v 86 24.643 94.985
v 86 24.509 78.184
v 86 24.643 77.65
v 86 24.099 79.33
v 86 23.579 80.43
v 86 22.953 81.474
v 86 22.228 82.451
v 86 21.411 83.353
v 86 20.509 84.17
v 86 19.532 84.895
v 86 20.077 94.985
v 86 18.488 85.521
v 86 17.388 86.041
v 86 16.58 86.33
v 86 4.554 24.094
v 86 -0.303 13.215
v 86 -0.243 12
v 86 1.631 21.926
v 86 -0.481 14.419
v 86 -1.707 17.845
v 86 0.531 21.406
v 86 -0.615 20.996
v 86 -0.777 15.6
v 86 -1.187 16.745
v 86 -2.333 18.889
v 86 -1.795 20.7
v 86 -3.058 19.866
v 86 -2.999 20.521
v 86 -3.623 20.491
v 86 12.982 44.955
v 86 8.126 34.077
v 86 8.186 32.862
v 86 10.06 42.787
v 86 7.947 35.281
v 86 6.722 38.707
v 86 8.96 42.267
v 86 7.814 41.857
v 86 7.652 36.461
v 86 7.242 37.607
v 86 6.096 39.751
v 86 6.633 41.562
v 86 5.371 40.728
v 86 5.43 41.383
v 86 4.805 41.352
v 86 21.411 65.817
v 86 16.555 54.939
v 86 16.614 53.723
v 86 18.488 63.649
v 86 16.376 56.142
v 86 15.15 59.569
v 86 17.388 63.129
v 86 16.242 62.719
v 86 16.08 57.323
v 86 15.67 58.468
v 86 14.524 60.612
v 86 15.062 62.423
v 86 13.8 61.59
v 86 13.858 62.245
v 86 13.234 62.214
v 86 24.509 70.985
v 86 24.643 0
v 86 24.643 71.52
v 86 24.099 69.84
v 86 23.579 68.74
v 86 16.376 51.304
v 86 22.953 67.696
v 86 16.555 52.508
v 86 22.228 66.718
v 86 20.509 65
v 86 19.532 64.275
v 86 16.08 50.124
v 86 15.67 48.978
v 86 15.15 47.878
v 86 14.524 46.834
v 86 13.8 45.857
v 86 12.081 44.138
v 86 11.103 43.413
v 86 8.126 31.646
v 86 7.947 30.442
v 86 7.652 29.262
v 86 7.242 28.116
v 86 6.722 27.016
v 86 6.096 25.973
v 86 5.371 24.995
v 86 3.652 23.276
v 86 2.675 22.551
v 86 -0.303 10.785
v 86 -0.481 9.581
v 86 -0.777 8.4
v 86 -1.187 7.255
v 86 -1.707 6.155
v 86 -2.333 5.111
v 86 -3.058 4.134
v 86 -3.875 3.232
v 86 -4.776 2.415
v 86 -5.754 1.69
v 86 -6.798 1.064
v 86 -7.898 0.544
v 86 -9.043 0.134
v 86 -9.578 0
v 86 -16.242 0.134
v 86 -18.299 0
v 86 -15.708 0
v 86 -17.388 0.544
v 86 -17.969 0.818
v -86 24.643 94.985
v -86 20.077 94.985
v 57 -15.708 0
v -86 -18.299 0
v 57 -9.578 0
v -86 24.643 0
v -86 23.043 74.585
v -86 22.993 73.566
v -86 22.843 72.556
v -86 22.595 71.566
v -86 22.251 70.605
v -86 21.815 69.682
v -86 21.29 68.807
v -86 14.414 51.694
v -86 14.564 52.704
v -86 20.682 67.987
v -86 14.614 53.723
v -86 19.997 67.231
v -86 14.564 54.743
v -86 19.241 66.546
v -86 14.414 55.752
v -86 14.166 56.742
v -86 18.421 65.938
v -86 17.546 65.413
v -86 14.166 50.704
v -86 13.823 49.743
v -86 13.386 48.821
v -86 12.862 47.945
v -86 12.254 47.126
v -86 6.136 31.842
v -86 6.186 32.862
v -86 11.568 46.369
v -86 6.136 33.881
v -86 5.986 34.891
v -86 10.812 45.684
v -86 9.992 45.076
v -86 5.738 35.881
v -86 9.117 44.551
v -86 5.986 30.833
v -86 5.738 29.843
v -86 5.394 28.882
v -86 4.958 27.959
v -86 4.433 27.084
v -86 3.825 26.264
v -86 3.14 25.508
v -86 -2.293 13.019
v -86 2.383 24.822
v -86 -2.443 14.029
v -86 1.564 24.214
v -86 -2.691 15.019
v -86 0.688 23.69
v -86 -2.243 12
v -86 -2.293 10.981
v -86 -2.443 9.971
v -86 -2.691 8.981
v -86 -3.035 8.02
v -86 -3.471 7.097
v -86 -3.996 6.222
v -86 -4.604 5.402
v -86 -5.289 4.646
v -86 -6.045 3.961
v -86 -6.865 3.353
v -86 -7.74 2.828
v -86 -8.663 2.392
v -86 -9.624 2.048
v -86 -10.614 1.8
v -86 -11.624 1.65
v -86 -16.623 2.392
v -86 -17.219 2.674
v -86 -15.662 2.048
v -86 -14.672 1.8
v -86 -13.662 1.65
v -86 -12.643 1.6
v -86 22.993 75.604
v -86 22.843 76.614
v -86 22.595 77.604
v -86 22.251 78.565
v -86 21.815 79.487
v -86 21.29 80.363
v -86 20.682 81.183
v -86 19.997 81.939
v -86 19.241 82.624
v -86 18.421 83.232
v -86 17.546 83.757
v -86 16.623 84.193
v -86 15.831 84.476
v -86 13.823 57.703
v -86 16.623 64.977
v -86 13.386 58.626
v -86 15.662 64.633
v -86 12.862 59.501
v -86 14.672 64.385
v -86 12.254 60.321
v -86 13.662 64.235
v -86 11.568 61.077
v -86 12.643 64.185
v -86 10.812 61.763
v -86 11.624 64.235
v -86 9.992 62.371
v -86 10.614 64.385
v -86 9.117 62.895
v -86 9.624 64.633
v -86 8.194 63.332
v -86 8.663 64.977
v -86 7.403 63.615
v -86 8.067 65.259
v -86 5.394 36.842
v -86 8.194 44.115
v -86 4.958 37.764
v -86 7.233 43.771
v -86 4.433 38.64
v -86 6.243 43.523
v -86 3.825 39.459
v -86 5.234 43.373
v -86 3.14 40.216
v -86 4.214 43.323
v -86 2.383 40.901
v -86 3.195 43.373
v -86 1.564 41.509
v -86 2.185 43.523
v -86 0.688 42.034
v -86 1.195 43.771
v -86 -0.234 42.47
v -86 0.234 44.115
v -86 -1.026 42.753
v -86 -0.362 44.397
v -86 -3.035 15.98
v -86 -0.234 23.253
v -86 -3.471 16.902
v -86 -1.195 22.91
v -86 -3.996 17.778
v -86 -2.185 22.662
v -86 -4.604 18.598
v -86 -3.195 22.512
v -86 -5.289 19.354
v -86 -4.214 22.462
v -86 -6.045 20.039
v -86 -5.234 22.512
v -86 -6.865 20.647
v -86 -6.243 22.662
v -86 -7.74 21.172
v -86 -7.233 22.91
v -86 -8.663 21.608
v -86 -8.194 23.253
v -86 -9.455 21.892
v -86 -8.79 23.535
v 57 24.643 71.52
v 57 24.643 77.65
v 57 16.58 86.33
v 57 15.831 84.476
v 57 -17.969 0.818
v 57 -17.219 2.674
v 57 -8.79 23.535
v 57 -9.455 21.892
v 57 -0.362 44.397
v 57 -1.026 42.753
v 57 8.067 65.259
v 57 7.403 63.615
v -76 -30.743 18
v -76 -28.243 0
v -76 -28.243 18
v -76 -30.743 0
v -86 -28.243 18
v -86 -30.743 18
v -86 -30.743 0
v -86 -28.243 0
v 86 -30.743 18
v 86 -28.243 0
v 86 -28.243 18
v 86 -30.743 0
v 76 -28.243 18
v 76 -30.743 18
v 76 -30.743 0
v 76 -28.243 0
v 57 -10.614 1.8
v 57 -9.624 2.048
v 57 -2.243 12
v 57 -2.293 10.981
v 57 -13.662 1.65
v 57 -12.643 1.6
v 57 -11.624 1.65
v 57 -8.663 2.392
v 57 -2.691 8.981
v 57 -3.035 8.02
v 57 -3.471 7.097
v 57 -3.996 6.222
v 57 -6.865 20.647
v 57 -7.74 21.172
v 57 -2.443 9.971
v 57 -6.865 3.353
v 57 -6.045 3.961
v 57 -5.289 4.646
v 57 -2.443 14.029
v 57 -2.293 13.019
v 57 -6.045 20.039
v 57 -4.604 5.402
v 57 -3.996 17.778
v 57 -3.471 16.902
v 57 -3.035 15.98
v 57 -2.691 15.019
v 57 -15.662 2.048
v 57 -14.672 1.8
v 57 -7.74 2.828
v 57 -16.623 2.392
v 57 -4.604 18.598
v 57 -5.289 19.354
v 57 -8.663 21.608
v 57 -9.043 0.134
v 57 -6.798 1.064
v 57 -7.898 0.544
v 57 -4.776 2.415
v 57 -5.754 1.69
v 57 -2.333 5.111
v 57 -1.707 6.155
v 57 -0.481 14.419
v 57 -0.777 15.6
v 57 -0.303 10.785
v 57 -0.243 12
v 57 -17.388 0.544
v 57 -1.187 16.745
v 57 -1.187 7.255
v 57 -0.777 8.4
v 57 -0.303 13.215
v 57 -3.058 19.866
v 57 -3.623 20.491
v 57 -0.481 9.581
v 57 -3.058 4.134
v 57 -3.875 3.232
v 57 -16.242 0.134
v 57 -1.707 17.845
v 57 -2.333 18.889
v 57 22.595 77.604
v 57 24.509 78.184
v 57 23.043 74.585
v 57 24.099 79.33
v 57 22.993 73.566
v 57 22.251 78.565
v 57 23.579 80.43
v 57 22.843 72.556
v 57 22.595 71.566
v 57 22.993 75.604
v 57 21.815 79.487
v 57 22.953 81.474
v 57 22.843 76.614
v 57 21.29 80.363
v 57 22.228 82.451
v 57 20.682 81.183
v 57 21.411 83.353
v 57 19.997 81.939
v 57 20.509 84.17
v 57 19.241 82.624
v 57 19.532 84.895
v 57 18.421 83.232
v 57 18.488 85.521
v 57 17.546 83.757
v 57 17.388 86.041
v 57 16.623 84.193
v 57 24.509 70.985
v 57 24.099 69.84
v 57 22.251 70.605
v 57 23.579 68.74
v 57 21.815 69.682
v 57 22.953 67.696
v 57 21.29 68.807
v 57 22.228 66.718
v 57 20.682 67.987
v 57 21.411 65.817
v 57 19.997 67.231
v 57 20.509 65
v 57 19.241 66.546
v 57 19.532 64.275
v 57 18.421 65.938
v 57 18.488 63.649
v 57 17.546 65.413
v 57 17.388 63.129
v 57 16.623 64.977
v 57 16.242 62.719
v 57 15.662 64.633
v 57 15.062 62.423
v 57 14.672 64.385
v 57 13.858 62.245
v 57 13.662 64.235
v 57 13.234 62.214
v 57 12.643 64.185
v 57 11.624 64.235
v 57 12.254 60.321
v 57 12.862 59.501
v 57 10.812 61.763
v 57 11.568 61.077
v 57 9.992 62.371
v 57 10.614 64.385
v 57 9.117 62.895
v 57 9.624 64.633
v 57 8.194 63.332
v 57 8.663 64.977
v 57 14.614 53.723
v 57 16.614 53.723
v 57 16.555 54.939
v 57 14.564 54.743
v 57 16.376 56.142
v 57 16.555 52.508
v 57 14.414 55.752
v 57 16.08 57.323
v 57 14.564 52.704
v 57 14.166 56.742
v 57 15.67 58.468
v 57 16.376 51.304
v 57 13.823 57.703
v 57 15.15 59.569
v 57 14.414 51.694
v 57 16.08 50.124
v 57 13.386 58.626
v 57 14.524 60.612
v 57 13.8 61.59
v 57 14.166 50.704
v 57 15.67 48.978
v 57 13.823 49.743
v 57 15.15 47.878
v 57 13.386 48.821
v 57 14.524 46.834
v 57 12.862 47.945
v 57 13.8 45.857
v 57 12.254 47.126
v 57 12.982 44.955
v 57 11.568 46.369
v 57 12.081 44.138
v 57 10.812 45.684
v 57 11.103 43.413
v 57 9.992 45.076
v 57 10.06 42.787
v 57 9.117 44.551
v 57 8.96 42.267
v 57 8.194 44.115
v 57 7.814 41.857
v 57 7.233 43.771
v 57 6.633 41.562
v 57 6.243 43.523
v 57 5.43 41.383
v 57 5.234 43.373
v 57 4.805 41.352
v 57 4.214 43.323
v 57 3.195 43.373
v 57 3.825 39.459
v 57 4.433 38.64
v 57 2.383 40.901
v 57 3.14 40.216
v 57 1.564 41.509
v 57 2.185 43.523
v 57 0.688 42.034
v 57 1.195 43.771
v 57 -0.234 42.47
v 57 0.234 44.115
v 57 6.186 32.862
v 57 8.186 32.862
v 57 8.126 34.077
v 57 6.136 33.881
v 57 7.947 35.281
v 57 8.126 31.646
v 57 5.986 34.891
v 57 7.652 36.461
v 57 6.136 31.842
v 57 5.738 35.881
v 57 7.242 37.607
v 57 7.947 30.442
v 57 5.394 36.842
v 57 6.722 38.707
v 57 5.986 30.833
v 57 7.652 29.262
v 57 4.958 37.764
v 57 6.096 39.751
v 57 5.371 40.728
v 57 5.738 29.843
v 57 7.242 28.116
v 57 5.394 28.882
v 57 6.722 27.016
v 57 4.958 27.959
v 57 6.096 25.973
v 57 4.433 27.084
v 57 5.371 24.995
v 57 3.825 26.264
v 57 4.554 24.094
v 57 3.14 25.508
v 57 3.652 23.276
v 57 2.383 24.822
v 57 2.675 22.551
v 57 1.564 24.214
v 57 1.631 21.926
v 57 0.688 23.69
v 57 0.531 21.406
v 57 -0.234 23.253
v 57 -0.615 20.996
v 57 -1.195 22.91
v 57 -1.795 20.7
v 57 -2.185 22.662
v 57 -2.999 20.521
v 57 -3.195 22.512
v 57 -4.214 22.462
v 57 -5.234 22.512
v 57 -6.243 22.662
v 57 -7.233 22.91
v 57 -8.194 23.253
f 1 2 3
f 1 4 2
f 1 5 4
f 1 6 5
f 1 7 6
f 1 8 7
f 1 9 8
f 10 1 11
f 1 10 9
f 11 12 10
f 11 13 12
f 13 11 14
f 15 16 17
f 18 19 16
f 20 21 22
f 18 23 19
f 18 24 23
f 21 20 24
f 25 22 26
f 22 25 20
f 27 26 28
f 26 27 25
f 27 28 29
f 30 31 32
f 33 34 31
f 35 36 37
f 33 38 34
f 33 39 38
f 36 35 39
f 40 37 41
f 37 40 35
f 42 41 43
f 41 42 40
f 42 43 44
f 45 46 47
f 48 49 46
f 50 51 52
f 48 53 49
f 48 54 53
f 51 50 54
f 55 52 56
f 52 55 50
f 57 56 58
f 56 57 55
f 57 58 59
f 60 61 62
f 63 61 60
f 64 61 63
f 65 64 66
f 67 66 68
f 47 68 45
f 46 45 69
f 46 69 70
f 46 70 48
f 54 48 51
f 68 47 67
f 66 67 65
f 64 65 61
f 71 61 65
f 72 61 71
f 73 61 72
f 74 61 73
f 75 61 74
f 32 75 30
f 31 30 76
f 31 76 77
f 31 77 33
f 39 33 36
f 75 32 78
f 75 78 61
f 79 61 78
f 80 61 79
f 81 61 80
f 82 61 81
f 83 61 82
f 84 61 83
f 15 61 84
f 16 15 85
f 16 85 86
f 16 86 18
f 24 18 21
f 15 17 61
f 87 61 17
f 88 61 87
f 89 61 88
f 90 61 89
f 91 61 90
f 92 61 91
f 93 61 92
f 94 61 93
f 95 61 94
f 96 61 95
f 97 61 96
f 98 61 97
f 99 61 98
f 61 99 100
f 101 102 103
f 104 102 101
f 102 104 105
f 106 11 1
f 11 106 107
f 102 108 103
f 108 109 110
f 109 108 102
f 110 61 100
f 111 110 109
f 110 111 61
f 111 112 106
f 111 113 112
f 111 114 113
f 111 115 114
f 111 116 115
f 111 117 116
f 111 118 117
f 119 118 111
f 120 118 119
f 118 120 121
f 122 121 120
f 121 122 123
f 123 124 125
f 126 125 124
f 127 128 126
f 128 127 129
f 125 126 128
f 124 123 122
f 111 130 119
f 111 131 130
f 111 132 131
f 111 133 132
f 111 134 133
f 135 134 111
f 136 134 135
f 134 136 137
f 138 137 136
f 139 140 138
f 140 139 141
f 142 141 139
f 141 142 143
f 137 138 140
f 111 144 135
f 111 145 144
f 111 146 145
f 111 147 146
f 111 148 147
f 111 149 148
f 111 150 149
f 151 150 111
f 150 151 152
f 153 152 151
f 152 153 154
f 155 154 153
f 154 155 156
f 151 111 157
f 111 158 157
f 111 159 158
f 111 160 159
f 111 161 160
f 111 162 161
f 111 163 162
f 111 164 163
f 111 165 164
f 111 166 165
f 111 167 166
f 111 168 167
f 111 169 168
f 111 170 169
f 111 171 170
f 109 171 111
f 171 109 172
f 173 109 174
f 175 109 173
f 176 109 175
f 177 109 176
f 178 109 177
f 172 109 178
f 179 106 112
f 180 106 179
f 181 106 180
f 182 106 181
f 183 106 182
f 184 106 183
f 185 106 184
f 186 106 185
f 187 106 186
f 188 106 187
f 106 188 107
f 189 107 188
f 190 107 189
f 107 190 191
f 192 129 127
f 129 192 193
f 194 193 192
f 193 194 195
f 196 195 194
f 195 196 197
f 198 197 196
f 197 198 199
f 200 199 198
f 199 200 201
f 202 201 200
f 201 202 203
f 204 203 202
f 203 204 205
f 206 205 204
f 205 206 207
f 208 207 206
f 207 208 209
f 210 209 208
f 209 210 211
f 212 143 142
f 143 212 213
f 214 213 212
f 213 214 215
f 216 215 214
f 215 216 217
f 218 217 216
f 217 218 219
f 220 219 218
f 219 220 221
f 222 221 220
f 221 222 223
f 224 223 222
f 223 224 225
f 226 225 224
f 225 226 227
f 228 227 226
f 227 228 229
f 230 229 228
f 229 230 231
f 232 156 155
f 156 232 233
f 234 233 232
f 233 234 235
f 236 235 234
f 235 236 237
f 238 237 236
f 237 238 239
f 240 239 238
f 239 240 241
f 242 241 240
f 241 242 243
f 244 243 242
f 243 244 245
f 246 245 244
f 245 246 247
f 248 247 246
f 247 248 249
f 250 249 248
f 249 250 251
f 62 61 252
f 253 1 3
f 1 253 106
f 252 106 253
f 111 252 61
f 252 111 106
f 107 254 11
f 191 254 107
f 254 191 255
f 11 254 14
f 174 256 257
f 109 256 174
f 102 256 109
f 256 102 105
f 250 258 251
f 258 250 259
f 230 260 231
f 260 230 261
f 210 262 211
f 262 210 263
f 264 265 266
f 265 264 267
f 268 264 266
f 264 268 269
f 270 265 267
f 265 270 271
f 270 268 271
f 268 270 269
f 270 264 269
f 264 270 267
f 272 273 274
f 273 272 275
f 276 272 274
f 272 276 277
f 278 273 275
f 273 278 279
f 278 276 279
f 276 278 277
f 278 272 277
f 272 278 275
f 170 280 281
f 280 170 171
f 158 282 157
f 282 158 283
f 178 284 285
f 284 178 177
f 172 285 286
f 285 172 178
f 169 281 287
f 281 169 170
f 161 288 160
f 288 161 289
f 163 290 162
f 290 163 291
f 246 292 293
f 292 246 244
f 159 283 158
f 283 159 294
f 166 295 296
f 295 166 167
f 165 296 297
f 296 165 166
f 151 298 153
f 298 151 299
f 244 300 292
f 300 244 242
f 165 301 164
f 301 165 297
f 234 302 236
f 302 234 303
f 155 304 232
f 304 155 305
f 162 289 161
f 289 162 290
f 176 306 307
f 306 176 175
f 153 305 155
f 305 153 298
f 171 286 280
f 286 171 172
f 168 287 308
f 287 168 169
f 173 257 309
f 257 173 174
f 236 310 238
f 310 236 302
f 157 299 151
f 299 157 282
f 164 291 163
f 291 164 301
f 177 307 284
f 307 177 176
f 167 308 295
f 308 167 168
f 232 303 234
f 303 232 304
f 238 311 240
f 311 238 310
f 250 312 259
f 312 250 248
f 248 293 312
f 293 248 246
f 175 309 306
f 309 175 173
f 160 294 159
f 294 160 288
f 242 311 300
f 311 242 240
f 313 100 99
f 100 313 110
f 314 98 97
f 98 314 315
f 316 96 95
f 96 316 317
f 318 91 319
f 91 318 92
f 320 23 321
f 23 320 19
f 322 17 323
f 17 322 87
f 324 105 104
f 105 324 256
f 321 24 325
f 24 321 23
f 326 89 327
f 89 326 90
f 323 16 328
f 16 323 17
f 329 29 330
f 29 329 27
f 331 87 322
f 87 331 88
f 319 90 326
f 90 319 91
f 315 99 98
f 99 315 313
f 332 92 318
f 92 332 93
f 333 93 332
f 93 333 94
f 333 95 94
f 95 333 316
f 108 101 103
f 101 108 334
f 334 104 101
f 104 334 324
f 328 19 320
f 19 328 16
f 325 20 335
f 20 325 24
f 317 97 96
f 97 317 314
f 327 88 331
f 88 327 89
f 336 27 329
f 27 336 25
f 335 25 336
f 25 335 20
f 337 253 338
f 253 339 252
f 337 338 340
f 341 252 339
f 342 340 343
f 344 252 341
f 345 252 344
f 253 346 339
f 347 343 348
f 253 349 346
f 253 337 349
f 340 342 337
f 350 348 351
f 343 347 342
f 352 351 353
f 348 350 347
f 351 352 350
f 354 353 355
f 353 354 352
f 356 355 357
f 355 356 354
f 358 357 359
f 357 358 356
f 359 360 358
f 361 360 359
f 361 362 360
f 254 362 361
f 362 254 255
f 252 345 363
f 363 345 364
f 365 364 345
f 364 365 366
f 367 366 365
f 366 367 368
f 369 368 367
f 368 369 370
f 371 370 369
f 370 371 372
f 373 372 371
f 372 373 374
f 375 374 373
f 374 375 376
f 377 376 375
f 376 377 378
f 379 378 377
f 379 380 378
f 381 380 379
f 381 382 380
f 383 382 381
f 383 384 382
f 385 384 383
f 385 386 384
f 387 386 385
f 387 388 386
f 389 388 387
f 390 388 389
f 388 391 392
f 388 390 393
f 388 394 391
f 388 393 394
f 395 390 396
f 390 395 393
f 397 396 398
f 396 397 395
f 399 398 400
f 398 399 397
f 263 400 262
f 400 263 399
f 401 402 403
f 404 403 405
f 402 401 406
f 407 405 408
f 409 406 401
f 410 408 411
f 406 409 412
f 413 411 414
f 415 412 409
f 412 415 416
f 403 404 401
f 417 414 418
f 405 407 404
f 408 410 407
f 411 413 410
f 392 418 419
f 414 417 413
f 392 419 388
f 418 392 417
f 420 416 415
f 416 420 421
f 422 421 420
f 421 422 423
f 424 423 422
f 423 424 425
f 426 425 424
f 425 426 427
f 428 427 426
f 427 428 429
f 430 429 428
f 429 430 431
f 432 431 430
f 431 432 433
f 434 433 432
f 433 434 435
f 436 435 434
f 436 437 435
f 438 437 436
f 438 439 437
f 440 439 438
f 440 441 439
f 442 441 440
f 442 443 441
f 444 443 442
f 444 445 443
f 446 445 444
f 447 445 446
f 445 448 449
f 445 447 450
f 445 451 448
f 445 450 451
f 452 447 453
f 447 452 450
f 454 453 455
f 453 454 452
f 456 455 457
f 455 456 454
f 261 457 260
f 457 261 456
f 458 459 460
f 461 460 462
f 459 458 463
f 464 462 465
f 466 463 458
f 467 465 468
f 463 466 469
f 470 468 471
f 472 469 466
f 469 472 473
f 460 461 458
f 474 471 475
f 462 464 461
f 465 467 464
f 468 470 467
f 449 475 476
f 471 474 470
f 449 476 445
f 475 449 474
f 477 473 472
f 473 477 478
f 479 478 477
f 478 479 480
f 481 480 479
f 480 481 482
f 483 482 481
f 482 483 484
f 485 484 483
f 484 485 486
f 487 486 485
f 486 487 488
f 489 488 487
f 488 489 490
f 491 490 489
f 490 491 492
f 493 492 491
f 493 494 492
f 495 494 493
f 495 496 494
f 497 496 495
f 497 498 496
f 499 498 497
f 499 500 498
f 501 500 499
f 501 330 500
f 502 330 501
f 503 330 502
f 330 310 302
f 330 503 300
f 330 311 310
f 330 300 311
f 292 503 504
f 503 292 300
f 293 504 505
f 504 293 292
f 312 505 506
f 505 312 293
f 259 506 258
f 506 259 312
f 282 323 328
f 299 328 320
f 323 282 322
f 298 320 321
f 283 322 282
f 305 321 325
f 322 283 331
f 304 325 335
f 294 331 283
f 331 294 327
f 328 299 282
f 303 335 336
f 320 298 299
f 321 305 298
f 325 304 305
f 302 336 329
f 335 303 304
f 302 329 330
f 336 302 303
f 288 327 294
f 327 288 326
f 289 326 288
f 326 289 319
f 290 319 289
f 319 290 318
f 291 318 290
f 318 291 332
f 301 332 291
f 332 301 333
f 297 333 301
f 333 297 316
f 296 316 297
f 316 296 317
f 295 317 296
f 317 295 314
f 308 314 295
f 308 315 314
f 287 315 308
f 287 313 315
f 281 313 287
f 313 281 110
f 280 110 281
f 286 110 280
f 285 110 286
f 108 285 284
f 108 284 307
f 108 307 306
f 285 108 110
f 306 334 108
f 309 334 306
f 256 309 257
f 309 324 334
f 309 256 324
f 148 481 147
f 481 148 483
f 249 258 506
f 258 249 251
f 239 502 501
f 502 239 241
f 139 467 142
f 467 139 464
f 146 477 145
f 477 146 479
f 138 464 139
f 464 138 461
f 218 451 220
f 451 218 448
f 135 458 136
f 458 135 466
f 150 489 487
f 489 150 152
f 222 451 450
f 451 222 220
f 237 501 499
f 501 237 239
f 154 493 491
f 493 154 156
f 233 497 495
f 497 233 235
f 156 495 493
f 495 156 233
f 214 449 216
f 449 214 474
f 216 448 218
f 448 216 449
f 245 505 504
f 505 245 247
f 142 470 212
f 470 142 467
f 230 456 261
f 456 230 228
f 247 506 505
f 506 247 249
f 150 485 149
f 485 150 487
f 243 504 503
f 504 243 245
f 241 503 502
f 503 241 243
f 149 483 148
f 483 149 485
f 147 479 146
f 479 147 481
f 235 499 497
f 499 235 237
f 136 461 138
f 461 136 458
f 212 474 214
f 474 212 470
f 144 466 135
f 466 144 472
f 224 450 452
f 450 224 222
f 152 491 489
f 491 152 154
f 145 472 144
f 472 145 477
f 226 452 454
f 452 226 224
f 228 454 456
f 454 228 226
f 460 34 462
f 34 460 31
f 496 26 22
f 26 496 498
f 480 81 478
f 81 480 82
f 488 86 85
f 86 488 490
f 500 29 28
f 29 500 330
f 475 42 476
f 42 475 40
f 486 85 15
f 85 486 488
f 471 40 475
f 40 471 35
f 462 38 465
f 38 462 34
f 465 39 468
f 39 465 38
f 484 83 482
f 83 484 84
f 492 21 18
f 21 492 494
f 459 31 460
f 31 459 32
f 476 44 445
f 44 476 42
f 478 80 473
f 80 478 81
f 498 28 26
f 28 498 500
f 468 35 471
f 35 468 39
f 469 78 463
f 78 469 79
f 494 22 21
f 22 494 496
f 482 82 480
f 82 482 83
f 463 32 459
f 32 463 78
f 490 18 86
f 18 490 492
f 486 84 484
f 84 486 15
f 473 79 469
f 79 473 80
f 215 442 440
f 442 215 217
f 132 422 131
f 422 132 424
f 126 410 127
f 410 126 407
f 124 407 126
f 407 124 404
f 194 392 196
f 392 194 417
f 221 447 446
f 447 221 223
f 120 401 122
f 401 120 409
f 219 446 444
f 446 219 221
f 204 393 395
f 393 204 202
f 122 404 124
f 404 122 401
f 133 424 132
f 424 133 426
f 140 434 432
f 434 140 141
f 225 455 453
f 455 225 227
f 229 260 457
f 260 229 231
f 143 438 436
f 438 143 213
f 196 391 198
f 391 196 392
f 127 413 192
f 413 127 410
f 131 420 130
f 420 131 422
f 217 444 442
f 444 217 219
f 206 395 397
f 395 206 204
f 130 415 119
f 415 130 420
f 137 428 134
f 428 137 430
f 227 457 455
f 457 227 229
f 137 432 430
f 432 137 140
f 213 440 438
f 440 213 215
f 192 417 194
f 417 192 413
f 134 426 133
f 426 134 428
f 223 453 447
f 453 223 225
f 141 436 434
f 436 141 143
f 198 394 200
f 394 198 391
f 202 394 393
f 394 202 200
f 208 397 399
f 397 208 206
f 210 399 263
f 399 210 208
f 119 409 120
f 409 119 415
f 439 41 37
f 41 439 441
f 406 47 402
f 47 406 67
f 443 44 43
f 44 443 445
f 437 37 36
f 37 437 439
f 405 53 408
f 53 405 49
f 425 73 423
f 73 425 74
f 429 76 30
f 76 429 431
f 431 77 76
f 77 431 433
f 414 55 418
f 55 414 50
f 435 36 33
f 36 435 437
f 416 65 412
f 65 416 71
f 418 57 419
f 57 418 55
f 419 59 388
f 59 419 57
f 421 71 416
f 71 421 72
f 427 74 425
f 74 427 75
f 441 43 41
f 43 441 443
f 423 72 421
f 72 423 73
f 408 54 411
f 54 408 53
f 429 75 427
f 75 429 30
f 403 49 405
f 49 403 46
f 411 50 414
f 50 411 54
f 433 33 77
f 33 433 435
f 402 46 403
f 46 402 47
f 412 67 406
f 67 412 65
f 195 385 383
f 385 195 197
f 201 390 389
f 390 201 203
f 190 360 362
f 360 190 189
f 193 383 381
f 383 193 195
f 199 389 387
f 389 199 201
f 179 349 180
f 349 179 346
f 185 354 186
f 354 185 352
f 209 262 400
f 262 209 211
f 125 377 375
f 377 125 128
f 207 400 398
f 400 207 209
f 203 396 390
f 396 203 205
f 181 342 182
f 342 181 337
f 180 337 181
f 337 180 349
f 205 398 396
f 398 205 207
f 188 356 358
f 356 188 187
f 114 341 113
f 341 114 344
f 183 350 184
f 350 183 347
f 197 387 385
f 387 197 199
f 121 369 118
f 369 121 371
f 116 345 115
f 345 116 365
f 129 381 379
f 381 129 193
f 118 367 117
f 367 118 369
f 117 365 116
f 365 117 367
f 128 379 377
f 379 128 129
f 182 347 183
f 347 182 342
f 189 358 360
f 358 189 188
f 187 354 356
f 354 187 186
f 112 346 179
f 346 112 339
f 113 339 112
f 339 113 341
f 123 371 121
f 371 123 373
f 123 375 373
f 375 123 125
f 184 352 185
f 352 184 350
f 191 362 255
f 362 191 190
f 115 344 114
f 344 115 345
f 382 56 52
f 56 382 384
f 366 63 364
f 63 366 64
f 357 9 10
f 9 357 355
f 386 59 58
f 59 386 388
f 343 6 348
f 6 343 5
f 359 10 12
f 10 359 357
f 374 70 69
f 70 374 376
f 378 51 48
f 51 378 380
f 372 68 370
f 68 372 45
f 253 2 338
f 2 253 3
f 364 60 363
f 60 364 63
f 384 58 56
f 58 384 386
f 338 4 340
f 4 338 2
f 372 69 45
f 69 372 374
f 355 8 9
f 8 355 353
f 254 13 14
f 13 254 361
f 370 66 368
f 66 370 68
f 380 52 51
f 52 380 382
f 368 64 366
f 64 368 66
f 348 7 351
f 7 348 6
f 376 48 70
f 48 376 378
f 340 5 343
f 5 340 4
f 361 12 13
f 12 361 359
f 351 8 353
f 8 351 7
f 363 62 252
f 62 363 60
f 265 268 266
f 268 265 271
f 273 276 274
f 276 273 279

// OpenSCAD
// file: common.scad
// ============================================================
// common.scad — shared parameters + modules for all designs
// LOCKED PEN SPECIFICATION (do not change)
// ============================================================
PEN_L = 165;      // pen length (mm)
PEN_A = 17;       // pen cross-section minor
PEN_B = 20;       // pen cross-section major (used as diameter envelope)
CLEAR = 0.4;      // fit clearance
WALL  = 1.6;      // minimum wall thickness

$fn = 64;

RCH = PEN_B/2 + CLEAR;   // = 10.4  channel radius
EPS = 0.01;

// --- open-top U trough cut, axis along X, centered at local origin -----------
// Removes a lower half-cylinder of radius r plus a full-width vertical slot
// upward, so the channel is open at the top (no ceiling -> no overhang).
module trough_cut(len, r=RCH, top=80) {
    union() {
        rotate([0,90,0]) cylinder(h=len, r=r, center=true);
        translate([0,0,top/2]) cube([len, 2*r, top], center=true); // slot upward
    }
}

// --- teardrop hole, axis along X, centered at local origin --------------------
// 45-degree self-supporting apex pointing +Z so a horizontal bore can print
// without support.
module teardrop_cut(len, r=RCH) {
    rotate([0,90,0])
        linear_extrude(height=len, center=true)
            union() {
                circle(r=r);
                polygon([[ 0.7071*r, 0.7071*r],
                         [ 0,         1.4142*r],
                         [-0.7071*r,  0.7071*r]]);
            }
}

// --- dial relief: widened open-top pocket at one channel end -----------------
// place at the +X or -X end of a channel so the dose dial clears / can be turned
module dial_relief(end_x, r=RCH+2.2, len=28, top=80) {
    translate([end_x, 0, 0]) trough_cut(len, r, top);
}
// file: gate_lib.scad
// gate_lib.scad — two-part front-removable rack: open cradle BODY + lift-off GATE
// The body is a reclined ramp with open grooves; pens pull straight out the
// front. A slim gate drops into a catch at each end and spans the front, blocking
// the pens until you lift it off. Everything is a loose/positive fit -> nothing
// tolerance-critical, no snap, no test print.
include <common.scad>

LBLK = PEN_L + 7;     // 172 body length
GTH  = 3.0;           // gate thickness
GCL  = 0.6;           // generous clearance for the gate-to-catch fit
TABW = 10;            // gate end-tab width (along X)

// ---- shared layout ---------------------------------------------------------
function _yc(n,P,phi,i) = (-(n-1)/2 + i) * P * cos(phi);
function _zc(n,P,phi,i) = (WALL + RCH) + i * P * sin(phi);
function _ymn(n,P,phi)  = _yc(n,P,phi,0)   - RCH - WALL;
function _ymx(n,P,phi)  = _yc(n,P,phi,n-1) + RCH + WALL;
function _Hb(n,P,phi)   = _zc(n,P,phi,n-1) + RCH + 10;
// up-slope length of the ramp face (gate height when printed standing)
function _faceL(n,P)    = (n-1)*P + 2*RCH + 8;

// 2D teardrop (45deg apex toward +Y) for self-supporting windows
module _td2d(r) {
    union() {
        circle(r=r);
        polygon([[0.7071*r,0.7071*r],[0,1.4142*r],[-0.7071*r,0.7071*r]]);
    }
}

// ===================== BODY (prints in this orientation) ====================
module body(n=4, phi=52, P=22.5, lip=2.0, rr=RCH+2, rlen=34) {
    cph=cos(phi); sph=sin(phi);
    yc=[for(i=[0:n-1]) _yc(n,P,phi,i)];
    zc=[for(i=[0:n-1]) _zc(n,P,phi,i)];
    ymn=_ymn(n,P,phi); ymx=_ymx(n,P,phi);
    Wb=ymx-ymn; ycen=(ymx+ymn)/2; Hb=_Hb(n,P,phi);
    relief_cx=LBLK/2-12; big=800;
    cxtab = LBLK/2 - TABW/2;     // catch sits just inside each end

    difference() {
        union() {
            // sheared wedge
            difference() {
                translate([0,ycen,Hb/2]) cube([LBLK,Wb,Hb],center=true);
                translate([0,yc[0],zc[0]+lip]) rotate([phi,0,0])
                    translate([0,0,big/2]) cube([LBLK+2,big,big],center=true);
            }
            // two end CATCHES: posts at the front-bottom corners with an
            // up-slope-open pocket the gate end-tab drops into
            for (sx=[-1,1])
                translate([sx*cxtab, ymn - GTH - GCL, 0])
                    catch_post(phi);
        }
        // open grooves (pen pulls out the front) + dial relief
        for (i=[0:n-1]) {
            translate([0,yc[i],zc[i]]) rotate([0,90,0]) cylinder(h=LBLK+2,r=RCH,center=true);
            translate([relief_cx,yc[i],zc[i]]) rotate([0,90,0]) cylinder(h=rlen,r=rr,center=true);
        }
        // pocket inside each catch (the slot the gate tab sits in)
        for (sx=[-1,1])
            translate([sx*cxtab, ymn - GTH/2, 0])
                catch_slot();
    }
}

module catch_post(phi) {
    // a small block in front of the ramp toe, tall enough to hold the gate
    translate([0,0,18/2]) cube([TABW, GTH+2, 18], center=true);
}
module catch_slot() {
    // open-topped slot the gate end-tab drops into (loose fit)
    translate([0,0,30]) cube([TABW+2*GCL, GTH+2*GCL, 60], center=true);
}

// ===================== GATE (authored STANDING for printing) ================
// Printed as a thin upright wall: X = length, Z = ramp-face height, Y = thickness
module gate(n=4, phi=52, P=22.5, rwin=6.5) {
    faceL=_faceL(n,P);
    difference() {
        union() {
            // main panel
            translate([0,0,faceL/2]) cube([LBLK, GTH, faceL], center=true);
            // two end tabs that drop into the body catches (extend below panel)
            for (sx=[-1,1])
                translate([sx*(LBLK/2 - TABW/2), 0, -7])
                    cube([TABW, GTH, 16], center=true);
        }
        // grab windows aligned to each pen's up-slope position
        for (i=[0:n-1])
            translate([0, 0, RCH + 4 + i*P])
                rotate([90,0,0]) linear_extrude(height=GTH+2, center=true) _td2d(rwin);
    }
}
// main file
// f3 body — reclined open-cradle rack (4 pens), pull out the front.
include <gate_lib.scad>
body(n=4, phi=68, P=22.5);
